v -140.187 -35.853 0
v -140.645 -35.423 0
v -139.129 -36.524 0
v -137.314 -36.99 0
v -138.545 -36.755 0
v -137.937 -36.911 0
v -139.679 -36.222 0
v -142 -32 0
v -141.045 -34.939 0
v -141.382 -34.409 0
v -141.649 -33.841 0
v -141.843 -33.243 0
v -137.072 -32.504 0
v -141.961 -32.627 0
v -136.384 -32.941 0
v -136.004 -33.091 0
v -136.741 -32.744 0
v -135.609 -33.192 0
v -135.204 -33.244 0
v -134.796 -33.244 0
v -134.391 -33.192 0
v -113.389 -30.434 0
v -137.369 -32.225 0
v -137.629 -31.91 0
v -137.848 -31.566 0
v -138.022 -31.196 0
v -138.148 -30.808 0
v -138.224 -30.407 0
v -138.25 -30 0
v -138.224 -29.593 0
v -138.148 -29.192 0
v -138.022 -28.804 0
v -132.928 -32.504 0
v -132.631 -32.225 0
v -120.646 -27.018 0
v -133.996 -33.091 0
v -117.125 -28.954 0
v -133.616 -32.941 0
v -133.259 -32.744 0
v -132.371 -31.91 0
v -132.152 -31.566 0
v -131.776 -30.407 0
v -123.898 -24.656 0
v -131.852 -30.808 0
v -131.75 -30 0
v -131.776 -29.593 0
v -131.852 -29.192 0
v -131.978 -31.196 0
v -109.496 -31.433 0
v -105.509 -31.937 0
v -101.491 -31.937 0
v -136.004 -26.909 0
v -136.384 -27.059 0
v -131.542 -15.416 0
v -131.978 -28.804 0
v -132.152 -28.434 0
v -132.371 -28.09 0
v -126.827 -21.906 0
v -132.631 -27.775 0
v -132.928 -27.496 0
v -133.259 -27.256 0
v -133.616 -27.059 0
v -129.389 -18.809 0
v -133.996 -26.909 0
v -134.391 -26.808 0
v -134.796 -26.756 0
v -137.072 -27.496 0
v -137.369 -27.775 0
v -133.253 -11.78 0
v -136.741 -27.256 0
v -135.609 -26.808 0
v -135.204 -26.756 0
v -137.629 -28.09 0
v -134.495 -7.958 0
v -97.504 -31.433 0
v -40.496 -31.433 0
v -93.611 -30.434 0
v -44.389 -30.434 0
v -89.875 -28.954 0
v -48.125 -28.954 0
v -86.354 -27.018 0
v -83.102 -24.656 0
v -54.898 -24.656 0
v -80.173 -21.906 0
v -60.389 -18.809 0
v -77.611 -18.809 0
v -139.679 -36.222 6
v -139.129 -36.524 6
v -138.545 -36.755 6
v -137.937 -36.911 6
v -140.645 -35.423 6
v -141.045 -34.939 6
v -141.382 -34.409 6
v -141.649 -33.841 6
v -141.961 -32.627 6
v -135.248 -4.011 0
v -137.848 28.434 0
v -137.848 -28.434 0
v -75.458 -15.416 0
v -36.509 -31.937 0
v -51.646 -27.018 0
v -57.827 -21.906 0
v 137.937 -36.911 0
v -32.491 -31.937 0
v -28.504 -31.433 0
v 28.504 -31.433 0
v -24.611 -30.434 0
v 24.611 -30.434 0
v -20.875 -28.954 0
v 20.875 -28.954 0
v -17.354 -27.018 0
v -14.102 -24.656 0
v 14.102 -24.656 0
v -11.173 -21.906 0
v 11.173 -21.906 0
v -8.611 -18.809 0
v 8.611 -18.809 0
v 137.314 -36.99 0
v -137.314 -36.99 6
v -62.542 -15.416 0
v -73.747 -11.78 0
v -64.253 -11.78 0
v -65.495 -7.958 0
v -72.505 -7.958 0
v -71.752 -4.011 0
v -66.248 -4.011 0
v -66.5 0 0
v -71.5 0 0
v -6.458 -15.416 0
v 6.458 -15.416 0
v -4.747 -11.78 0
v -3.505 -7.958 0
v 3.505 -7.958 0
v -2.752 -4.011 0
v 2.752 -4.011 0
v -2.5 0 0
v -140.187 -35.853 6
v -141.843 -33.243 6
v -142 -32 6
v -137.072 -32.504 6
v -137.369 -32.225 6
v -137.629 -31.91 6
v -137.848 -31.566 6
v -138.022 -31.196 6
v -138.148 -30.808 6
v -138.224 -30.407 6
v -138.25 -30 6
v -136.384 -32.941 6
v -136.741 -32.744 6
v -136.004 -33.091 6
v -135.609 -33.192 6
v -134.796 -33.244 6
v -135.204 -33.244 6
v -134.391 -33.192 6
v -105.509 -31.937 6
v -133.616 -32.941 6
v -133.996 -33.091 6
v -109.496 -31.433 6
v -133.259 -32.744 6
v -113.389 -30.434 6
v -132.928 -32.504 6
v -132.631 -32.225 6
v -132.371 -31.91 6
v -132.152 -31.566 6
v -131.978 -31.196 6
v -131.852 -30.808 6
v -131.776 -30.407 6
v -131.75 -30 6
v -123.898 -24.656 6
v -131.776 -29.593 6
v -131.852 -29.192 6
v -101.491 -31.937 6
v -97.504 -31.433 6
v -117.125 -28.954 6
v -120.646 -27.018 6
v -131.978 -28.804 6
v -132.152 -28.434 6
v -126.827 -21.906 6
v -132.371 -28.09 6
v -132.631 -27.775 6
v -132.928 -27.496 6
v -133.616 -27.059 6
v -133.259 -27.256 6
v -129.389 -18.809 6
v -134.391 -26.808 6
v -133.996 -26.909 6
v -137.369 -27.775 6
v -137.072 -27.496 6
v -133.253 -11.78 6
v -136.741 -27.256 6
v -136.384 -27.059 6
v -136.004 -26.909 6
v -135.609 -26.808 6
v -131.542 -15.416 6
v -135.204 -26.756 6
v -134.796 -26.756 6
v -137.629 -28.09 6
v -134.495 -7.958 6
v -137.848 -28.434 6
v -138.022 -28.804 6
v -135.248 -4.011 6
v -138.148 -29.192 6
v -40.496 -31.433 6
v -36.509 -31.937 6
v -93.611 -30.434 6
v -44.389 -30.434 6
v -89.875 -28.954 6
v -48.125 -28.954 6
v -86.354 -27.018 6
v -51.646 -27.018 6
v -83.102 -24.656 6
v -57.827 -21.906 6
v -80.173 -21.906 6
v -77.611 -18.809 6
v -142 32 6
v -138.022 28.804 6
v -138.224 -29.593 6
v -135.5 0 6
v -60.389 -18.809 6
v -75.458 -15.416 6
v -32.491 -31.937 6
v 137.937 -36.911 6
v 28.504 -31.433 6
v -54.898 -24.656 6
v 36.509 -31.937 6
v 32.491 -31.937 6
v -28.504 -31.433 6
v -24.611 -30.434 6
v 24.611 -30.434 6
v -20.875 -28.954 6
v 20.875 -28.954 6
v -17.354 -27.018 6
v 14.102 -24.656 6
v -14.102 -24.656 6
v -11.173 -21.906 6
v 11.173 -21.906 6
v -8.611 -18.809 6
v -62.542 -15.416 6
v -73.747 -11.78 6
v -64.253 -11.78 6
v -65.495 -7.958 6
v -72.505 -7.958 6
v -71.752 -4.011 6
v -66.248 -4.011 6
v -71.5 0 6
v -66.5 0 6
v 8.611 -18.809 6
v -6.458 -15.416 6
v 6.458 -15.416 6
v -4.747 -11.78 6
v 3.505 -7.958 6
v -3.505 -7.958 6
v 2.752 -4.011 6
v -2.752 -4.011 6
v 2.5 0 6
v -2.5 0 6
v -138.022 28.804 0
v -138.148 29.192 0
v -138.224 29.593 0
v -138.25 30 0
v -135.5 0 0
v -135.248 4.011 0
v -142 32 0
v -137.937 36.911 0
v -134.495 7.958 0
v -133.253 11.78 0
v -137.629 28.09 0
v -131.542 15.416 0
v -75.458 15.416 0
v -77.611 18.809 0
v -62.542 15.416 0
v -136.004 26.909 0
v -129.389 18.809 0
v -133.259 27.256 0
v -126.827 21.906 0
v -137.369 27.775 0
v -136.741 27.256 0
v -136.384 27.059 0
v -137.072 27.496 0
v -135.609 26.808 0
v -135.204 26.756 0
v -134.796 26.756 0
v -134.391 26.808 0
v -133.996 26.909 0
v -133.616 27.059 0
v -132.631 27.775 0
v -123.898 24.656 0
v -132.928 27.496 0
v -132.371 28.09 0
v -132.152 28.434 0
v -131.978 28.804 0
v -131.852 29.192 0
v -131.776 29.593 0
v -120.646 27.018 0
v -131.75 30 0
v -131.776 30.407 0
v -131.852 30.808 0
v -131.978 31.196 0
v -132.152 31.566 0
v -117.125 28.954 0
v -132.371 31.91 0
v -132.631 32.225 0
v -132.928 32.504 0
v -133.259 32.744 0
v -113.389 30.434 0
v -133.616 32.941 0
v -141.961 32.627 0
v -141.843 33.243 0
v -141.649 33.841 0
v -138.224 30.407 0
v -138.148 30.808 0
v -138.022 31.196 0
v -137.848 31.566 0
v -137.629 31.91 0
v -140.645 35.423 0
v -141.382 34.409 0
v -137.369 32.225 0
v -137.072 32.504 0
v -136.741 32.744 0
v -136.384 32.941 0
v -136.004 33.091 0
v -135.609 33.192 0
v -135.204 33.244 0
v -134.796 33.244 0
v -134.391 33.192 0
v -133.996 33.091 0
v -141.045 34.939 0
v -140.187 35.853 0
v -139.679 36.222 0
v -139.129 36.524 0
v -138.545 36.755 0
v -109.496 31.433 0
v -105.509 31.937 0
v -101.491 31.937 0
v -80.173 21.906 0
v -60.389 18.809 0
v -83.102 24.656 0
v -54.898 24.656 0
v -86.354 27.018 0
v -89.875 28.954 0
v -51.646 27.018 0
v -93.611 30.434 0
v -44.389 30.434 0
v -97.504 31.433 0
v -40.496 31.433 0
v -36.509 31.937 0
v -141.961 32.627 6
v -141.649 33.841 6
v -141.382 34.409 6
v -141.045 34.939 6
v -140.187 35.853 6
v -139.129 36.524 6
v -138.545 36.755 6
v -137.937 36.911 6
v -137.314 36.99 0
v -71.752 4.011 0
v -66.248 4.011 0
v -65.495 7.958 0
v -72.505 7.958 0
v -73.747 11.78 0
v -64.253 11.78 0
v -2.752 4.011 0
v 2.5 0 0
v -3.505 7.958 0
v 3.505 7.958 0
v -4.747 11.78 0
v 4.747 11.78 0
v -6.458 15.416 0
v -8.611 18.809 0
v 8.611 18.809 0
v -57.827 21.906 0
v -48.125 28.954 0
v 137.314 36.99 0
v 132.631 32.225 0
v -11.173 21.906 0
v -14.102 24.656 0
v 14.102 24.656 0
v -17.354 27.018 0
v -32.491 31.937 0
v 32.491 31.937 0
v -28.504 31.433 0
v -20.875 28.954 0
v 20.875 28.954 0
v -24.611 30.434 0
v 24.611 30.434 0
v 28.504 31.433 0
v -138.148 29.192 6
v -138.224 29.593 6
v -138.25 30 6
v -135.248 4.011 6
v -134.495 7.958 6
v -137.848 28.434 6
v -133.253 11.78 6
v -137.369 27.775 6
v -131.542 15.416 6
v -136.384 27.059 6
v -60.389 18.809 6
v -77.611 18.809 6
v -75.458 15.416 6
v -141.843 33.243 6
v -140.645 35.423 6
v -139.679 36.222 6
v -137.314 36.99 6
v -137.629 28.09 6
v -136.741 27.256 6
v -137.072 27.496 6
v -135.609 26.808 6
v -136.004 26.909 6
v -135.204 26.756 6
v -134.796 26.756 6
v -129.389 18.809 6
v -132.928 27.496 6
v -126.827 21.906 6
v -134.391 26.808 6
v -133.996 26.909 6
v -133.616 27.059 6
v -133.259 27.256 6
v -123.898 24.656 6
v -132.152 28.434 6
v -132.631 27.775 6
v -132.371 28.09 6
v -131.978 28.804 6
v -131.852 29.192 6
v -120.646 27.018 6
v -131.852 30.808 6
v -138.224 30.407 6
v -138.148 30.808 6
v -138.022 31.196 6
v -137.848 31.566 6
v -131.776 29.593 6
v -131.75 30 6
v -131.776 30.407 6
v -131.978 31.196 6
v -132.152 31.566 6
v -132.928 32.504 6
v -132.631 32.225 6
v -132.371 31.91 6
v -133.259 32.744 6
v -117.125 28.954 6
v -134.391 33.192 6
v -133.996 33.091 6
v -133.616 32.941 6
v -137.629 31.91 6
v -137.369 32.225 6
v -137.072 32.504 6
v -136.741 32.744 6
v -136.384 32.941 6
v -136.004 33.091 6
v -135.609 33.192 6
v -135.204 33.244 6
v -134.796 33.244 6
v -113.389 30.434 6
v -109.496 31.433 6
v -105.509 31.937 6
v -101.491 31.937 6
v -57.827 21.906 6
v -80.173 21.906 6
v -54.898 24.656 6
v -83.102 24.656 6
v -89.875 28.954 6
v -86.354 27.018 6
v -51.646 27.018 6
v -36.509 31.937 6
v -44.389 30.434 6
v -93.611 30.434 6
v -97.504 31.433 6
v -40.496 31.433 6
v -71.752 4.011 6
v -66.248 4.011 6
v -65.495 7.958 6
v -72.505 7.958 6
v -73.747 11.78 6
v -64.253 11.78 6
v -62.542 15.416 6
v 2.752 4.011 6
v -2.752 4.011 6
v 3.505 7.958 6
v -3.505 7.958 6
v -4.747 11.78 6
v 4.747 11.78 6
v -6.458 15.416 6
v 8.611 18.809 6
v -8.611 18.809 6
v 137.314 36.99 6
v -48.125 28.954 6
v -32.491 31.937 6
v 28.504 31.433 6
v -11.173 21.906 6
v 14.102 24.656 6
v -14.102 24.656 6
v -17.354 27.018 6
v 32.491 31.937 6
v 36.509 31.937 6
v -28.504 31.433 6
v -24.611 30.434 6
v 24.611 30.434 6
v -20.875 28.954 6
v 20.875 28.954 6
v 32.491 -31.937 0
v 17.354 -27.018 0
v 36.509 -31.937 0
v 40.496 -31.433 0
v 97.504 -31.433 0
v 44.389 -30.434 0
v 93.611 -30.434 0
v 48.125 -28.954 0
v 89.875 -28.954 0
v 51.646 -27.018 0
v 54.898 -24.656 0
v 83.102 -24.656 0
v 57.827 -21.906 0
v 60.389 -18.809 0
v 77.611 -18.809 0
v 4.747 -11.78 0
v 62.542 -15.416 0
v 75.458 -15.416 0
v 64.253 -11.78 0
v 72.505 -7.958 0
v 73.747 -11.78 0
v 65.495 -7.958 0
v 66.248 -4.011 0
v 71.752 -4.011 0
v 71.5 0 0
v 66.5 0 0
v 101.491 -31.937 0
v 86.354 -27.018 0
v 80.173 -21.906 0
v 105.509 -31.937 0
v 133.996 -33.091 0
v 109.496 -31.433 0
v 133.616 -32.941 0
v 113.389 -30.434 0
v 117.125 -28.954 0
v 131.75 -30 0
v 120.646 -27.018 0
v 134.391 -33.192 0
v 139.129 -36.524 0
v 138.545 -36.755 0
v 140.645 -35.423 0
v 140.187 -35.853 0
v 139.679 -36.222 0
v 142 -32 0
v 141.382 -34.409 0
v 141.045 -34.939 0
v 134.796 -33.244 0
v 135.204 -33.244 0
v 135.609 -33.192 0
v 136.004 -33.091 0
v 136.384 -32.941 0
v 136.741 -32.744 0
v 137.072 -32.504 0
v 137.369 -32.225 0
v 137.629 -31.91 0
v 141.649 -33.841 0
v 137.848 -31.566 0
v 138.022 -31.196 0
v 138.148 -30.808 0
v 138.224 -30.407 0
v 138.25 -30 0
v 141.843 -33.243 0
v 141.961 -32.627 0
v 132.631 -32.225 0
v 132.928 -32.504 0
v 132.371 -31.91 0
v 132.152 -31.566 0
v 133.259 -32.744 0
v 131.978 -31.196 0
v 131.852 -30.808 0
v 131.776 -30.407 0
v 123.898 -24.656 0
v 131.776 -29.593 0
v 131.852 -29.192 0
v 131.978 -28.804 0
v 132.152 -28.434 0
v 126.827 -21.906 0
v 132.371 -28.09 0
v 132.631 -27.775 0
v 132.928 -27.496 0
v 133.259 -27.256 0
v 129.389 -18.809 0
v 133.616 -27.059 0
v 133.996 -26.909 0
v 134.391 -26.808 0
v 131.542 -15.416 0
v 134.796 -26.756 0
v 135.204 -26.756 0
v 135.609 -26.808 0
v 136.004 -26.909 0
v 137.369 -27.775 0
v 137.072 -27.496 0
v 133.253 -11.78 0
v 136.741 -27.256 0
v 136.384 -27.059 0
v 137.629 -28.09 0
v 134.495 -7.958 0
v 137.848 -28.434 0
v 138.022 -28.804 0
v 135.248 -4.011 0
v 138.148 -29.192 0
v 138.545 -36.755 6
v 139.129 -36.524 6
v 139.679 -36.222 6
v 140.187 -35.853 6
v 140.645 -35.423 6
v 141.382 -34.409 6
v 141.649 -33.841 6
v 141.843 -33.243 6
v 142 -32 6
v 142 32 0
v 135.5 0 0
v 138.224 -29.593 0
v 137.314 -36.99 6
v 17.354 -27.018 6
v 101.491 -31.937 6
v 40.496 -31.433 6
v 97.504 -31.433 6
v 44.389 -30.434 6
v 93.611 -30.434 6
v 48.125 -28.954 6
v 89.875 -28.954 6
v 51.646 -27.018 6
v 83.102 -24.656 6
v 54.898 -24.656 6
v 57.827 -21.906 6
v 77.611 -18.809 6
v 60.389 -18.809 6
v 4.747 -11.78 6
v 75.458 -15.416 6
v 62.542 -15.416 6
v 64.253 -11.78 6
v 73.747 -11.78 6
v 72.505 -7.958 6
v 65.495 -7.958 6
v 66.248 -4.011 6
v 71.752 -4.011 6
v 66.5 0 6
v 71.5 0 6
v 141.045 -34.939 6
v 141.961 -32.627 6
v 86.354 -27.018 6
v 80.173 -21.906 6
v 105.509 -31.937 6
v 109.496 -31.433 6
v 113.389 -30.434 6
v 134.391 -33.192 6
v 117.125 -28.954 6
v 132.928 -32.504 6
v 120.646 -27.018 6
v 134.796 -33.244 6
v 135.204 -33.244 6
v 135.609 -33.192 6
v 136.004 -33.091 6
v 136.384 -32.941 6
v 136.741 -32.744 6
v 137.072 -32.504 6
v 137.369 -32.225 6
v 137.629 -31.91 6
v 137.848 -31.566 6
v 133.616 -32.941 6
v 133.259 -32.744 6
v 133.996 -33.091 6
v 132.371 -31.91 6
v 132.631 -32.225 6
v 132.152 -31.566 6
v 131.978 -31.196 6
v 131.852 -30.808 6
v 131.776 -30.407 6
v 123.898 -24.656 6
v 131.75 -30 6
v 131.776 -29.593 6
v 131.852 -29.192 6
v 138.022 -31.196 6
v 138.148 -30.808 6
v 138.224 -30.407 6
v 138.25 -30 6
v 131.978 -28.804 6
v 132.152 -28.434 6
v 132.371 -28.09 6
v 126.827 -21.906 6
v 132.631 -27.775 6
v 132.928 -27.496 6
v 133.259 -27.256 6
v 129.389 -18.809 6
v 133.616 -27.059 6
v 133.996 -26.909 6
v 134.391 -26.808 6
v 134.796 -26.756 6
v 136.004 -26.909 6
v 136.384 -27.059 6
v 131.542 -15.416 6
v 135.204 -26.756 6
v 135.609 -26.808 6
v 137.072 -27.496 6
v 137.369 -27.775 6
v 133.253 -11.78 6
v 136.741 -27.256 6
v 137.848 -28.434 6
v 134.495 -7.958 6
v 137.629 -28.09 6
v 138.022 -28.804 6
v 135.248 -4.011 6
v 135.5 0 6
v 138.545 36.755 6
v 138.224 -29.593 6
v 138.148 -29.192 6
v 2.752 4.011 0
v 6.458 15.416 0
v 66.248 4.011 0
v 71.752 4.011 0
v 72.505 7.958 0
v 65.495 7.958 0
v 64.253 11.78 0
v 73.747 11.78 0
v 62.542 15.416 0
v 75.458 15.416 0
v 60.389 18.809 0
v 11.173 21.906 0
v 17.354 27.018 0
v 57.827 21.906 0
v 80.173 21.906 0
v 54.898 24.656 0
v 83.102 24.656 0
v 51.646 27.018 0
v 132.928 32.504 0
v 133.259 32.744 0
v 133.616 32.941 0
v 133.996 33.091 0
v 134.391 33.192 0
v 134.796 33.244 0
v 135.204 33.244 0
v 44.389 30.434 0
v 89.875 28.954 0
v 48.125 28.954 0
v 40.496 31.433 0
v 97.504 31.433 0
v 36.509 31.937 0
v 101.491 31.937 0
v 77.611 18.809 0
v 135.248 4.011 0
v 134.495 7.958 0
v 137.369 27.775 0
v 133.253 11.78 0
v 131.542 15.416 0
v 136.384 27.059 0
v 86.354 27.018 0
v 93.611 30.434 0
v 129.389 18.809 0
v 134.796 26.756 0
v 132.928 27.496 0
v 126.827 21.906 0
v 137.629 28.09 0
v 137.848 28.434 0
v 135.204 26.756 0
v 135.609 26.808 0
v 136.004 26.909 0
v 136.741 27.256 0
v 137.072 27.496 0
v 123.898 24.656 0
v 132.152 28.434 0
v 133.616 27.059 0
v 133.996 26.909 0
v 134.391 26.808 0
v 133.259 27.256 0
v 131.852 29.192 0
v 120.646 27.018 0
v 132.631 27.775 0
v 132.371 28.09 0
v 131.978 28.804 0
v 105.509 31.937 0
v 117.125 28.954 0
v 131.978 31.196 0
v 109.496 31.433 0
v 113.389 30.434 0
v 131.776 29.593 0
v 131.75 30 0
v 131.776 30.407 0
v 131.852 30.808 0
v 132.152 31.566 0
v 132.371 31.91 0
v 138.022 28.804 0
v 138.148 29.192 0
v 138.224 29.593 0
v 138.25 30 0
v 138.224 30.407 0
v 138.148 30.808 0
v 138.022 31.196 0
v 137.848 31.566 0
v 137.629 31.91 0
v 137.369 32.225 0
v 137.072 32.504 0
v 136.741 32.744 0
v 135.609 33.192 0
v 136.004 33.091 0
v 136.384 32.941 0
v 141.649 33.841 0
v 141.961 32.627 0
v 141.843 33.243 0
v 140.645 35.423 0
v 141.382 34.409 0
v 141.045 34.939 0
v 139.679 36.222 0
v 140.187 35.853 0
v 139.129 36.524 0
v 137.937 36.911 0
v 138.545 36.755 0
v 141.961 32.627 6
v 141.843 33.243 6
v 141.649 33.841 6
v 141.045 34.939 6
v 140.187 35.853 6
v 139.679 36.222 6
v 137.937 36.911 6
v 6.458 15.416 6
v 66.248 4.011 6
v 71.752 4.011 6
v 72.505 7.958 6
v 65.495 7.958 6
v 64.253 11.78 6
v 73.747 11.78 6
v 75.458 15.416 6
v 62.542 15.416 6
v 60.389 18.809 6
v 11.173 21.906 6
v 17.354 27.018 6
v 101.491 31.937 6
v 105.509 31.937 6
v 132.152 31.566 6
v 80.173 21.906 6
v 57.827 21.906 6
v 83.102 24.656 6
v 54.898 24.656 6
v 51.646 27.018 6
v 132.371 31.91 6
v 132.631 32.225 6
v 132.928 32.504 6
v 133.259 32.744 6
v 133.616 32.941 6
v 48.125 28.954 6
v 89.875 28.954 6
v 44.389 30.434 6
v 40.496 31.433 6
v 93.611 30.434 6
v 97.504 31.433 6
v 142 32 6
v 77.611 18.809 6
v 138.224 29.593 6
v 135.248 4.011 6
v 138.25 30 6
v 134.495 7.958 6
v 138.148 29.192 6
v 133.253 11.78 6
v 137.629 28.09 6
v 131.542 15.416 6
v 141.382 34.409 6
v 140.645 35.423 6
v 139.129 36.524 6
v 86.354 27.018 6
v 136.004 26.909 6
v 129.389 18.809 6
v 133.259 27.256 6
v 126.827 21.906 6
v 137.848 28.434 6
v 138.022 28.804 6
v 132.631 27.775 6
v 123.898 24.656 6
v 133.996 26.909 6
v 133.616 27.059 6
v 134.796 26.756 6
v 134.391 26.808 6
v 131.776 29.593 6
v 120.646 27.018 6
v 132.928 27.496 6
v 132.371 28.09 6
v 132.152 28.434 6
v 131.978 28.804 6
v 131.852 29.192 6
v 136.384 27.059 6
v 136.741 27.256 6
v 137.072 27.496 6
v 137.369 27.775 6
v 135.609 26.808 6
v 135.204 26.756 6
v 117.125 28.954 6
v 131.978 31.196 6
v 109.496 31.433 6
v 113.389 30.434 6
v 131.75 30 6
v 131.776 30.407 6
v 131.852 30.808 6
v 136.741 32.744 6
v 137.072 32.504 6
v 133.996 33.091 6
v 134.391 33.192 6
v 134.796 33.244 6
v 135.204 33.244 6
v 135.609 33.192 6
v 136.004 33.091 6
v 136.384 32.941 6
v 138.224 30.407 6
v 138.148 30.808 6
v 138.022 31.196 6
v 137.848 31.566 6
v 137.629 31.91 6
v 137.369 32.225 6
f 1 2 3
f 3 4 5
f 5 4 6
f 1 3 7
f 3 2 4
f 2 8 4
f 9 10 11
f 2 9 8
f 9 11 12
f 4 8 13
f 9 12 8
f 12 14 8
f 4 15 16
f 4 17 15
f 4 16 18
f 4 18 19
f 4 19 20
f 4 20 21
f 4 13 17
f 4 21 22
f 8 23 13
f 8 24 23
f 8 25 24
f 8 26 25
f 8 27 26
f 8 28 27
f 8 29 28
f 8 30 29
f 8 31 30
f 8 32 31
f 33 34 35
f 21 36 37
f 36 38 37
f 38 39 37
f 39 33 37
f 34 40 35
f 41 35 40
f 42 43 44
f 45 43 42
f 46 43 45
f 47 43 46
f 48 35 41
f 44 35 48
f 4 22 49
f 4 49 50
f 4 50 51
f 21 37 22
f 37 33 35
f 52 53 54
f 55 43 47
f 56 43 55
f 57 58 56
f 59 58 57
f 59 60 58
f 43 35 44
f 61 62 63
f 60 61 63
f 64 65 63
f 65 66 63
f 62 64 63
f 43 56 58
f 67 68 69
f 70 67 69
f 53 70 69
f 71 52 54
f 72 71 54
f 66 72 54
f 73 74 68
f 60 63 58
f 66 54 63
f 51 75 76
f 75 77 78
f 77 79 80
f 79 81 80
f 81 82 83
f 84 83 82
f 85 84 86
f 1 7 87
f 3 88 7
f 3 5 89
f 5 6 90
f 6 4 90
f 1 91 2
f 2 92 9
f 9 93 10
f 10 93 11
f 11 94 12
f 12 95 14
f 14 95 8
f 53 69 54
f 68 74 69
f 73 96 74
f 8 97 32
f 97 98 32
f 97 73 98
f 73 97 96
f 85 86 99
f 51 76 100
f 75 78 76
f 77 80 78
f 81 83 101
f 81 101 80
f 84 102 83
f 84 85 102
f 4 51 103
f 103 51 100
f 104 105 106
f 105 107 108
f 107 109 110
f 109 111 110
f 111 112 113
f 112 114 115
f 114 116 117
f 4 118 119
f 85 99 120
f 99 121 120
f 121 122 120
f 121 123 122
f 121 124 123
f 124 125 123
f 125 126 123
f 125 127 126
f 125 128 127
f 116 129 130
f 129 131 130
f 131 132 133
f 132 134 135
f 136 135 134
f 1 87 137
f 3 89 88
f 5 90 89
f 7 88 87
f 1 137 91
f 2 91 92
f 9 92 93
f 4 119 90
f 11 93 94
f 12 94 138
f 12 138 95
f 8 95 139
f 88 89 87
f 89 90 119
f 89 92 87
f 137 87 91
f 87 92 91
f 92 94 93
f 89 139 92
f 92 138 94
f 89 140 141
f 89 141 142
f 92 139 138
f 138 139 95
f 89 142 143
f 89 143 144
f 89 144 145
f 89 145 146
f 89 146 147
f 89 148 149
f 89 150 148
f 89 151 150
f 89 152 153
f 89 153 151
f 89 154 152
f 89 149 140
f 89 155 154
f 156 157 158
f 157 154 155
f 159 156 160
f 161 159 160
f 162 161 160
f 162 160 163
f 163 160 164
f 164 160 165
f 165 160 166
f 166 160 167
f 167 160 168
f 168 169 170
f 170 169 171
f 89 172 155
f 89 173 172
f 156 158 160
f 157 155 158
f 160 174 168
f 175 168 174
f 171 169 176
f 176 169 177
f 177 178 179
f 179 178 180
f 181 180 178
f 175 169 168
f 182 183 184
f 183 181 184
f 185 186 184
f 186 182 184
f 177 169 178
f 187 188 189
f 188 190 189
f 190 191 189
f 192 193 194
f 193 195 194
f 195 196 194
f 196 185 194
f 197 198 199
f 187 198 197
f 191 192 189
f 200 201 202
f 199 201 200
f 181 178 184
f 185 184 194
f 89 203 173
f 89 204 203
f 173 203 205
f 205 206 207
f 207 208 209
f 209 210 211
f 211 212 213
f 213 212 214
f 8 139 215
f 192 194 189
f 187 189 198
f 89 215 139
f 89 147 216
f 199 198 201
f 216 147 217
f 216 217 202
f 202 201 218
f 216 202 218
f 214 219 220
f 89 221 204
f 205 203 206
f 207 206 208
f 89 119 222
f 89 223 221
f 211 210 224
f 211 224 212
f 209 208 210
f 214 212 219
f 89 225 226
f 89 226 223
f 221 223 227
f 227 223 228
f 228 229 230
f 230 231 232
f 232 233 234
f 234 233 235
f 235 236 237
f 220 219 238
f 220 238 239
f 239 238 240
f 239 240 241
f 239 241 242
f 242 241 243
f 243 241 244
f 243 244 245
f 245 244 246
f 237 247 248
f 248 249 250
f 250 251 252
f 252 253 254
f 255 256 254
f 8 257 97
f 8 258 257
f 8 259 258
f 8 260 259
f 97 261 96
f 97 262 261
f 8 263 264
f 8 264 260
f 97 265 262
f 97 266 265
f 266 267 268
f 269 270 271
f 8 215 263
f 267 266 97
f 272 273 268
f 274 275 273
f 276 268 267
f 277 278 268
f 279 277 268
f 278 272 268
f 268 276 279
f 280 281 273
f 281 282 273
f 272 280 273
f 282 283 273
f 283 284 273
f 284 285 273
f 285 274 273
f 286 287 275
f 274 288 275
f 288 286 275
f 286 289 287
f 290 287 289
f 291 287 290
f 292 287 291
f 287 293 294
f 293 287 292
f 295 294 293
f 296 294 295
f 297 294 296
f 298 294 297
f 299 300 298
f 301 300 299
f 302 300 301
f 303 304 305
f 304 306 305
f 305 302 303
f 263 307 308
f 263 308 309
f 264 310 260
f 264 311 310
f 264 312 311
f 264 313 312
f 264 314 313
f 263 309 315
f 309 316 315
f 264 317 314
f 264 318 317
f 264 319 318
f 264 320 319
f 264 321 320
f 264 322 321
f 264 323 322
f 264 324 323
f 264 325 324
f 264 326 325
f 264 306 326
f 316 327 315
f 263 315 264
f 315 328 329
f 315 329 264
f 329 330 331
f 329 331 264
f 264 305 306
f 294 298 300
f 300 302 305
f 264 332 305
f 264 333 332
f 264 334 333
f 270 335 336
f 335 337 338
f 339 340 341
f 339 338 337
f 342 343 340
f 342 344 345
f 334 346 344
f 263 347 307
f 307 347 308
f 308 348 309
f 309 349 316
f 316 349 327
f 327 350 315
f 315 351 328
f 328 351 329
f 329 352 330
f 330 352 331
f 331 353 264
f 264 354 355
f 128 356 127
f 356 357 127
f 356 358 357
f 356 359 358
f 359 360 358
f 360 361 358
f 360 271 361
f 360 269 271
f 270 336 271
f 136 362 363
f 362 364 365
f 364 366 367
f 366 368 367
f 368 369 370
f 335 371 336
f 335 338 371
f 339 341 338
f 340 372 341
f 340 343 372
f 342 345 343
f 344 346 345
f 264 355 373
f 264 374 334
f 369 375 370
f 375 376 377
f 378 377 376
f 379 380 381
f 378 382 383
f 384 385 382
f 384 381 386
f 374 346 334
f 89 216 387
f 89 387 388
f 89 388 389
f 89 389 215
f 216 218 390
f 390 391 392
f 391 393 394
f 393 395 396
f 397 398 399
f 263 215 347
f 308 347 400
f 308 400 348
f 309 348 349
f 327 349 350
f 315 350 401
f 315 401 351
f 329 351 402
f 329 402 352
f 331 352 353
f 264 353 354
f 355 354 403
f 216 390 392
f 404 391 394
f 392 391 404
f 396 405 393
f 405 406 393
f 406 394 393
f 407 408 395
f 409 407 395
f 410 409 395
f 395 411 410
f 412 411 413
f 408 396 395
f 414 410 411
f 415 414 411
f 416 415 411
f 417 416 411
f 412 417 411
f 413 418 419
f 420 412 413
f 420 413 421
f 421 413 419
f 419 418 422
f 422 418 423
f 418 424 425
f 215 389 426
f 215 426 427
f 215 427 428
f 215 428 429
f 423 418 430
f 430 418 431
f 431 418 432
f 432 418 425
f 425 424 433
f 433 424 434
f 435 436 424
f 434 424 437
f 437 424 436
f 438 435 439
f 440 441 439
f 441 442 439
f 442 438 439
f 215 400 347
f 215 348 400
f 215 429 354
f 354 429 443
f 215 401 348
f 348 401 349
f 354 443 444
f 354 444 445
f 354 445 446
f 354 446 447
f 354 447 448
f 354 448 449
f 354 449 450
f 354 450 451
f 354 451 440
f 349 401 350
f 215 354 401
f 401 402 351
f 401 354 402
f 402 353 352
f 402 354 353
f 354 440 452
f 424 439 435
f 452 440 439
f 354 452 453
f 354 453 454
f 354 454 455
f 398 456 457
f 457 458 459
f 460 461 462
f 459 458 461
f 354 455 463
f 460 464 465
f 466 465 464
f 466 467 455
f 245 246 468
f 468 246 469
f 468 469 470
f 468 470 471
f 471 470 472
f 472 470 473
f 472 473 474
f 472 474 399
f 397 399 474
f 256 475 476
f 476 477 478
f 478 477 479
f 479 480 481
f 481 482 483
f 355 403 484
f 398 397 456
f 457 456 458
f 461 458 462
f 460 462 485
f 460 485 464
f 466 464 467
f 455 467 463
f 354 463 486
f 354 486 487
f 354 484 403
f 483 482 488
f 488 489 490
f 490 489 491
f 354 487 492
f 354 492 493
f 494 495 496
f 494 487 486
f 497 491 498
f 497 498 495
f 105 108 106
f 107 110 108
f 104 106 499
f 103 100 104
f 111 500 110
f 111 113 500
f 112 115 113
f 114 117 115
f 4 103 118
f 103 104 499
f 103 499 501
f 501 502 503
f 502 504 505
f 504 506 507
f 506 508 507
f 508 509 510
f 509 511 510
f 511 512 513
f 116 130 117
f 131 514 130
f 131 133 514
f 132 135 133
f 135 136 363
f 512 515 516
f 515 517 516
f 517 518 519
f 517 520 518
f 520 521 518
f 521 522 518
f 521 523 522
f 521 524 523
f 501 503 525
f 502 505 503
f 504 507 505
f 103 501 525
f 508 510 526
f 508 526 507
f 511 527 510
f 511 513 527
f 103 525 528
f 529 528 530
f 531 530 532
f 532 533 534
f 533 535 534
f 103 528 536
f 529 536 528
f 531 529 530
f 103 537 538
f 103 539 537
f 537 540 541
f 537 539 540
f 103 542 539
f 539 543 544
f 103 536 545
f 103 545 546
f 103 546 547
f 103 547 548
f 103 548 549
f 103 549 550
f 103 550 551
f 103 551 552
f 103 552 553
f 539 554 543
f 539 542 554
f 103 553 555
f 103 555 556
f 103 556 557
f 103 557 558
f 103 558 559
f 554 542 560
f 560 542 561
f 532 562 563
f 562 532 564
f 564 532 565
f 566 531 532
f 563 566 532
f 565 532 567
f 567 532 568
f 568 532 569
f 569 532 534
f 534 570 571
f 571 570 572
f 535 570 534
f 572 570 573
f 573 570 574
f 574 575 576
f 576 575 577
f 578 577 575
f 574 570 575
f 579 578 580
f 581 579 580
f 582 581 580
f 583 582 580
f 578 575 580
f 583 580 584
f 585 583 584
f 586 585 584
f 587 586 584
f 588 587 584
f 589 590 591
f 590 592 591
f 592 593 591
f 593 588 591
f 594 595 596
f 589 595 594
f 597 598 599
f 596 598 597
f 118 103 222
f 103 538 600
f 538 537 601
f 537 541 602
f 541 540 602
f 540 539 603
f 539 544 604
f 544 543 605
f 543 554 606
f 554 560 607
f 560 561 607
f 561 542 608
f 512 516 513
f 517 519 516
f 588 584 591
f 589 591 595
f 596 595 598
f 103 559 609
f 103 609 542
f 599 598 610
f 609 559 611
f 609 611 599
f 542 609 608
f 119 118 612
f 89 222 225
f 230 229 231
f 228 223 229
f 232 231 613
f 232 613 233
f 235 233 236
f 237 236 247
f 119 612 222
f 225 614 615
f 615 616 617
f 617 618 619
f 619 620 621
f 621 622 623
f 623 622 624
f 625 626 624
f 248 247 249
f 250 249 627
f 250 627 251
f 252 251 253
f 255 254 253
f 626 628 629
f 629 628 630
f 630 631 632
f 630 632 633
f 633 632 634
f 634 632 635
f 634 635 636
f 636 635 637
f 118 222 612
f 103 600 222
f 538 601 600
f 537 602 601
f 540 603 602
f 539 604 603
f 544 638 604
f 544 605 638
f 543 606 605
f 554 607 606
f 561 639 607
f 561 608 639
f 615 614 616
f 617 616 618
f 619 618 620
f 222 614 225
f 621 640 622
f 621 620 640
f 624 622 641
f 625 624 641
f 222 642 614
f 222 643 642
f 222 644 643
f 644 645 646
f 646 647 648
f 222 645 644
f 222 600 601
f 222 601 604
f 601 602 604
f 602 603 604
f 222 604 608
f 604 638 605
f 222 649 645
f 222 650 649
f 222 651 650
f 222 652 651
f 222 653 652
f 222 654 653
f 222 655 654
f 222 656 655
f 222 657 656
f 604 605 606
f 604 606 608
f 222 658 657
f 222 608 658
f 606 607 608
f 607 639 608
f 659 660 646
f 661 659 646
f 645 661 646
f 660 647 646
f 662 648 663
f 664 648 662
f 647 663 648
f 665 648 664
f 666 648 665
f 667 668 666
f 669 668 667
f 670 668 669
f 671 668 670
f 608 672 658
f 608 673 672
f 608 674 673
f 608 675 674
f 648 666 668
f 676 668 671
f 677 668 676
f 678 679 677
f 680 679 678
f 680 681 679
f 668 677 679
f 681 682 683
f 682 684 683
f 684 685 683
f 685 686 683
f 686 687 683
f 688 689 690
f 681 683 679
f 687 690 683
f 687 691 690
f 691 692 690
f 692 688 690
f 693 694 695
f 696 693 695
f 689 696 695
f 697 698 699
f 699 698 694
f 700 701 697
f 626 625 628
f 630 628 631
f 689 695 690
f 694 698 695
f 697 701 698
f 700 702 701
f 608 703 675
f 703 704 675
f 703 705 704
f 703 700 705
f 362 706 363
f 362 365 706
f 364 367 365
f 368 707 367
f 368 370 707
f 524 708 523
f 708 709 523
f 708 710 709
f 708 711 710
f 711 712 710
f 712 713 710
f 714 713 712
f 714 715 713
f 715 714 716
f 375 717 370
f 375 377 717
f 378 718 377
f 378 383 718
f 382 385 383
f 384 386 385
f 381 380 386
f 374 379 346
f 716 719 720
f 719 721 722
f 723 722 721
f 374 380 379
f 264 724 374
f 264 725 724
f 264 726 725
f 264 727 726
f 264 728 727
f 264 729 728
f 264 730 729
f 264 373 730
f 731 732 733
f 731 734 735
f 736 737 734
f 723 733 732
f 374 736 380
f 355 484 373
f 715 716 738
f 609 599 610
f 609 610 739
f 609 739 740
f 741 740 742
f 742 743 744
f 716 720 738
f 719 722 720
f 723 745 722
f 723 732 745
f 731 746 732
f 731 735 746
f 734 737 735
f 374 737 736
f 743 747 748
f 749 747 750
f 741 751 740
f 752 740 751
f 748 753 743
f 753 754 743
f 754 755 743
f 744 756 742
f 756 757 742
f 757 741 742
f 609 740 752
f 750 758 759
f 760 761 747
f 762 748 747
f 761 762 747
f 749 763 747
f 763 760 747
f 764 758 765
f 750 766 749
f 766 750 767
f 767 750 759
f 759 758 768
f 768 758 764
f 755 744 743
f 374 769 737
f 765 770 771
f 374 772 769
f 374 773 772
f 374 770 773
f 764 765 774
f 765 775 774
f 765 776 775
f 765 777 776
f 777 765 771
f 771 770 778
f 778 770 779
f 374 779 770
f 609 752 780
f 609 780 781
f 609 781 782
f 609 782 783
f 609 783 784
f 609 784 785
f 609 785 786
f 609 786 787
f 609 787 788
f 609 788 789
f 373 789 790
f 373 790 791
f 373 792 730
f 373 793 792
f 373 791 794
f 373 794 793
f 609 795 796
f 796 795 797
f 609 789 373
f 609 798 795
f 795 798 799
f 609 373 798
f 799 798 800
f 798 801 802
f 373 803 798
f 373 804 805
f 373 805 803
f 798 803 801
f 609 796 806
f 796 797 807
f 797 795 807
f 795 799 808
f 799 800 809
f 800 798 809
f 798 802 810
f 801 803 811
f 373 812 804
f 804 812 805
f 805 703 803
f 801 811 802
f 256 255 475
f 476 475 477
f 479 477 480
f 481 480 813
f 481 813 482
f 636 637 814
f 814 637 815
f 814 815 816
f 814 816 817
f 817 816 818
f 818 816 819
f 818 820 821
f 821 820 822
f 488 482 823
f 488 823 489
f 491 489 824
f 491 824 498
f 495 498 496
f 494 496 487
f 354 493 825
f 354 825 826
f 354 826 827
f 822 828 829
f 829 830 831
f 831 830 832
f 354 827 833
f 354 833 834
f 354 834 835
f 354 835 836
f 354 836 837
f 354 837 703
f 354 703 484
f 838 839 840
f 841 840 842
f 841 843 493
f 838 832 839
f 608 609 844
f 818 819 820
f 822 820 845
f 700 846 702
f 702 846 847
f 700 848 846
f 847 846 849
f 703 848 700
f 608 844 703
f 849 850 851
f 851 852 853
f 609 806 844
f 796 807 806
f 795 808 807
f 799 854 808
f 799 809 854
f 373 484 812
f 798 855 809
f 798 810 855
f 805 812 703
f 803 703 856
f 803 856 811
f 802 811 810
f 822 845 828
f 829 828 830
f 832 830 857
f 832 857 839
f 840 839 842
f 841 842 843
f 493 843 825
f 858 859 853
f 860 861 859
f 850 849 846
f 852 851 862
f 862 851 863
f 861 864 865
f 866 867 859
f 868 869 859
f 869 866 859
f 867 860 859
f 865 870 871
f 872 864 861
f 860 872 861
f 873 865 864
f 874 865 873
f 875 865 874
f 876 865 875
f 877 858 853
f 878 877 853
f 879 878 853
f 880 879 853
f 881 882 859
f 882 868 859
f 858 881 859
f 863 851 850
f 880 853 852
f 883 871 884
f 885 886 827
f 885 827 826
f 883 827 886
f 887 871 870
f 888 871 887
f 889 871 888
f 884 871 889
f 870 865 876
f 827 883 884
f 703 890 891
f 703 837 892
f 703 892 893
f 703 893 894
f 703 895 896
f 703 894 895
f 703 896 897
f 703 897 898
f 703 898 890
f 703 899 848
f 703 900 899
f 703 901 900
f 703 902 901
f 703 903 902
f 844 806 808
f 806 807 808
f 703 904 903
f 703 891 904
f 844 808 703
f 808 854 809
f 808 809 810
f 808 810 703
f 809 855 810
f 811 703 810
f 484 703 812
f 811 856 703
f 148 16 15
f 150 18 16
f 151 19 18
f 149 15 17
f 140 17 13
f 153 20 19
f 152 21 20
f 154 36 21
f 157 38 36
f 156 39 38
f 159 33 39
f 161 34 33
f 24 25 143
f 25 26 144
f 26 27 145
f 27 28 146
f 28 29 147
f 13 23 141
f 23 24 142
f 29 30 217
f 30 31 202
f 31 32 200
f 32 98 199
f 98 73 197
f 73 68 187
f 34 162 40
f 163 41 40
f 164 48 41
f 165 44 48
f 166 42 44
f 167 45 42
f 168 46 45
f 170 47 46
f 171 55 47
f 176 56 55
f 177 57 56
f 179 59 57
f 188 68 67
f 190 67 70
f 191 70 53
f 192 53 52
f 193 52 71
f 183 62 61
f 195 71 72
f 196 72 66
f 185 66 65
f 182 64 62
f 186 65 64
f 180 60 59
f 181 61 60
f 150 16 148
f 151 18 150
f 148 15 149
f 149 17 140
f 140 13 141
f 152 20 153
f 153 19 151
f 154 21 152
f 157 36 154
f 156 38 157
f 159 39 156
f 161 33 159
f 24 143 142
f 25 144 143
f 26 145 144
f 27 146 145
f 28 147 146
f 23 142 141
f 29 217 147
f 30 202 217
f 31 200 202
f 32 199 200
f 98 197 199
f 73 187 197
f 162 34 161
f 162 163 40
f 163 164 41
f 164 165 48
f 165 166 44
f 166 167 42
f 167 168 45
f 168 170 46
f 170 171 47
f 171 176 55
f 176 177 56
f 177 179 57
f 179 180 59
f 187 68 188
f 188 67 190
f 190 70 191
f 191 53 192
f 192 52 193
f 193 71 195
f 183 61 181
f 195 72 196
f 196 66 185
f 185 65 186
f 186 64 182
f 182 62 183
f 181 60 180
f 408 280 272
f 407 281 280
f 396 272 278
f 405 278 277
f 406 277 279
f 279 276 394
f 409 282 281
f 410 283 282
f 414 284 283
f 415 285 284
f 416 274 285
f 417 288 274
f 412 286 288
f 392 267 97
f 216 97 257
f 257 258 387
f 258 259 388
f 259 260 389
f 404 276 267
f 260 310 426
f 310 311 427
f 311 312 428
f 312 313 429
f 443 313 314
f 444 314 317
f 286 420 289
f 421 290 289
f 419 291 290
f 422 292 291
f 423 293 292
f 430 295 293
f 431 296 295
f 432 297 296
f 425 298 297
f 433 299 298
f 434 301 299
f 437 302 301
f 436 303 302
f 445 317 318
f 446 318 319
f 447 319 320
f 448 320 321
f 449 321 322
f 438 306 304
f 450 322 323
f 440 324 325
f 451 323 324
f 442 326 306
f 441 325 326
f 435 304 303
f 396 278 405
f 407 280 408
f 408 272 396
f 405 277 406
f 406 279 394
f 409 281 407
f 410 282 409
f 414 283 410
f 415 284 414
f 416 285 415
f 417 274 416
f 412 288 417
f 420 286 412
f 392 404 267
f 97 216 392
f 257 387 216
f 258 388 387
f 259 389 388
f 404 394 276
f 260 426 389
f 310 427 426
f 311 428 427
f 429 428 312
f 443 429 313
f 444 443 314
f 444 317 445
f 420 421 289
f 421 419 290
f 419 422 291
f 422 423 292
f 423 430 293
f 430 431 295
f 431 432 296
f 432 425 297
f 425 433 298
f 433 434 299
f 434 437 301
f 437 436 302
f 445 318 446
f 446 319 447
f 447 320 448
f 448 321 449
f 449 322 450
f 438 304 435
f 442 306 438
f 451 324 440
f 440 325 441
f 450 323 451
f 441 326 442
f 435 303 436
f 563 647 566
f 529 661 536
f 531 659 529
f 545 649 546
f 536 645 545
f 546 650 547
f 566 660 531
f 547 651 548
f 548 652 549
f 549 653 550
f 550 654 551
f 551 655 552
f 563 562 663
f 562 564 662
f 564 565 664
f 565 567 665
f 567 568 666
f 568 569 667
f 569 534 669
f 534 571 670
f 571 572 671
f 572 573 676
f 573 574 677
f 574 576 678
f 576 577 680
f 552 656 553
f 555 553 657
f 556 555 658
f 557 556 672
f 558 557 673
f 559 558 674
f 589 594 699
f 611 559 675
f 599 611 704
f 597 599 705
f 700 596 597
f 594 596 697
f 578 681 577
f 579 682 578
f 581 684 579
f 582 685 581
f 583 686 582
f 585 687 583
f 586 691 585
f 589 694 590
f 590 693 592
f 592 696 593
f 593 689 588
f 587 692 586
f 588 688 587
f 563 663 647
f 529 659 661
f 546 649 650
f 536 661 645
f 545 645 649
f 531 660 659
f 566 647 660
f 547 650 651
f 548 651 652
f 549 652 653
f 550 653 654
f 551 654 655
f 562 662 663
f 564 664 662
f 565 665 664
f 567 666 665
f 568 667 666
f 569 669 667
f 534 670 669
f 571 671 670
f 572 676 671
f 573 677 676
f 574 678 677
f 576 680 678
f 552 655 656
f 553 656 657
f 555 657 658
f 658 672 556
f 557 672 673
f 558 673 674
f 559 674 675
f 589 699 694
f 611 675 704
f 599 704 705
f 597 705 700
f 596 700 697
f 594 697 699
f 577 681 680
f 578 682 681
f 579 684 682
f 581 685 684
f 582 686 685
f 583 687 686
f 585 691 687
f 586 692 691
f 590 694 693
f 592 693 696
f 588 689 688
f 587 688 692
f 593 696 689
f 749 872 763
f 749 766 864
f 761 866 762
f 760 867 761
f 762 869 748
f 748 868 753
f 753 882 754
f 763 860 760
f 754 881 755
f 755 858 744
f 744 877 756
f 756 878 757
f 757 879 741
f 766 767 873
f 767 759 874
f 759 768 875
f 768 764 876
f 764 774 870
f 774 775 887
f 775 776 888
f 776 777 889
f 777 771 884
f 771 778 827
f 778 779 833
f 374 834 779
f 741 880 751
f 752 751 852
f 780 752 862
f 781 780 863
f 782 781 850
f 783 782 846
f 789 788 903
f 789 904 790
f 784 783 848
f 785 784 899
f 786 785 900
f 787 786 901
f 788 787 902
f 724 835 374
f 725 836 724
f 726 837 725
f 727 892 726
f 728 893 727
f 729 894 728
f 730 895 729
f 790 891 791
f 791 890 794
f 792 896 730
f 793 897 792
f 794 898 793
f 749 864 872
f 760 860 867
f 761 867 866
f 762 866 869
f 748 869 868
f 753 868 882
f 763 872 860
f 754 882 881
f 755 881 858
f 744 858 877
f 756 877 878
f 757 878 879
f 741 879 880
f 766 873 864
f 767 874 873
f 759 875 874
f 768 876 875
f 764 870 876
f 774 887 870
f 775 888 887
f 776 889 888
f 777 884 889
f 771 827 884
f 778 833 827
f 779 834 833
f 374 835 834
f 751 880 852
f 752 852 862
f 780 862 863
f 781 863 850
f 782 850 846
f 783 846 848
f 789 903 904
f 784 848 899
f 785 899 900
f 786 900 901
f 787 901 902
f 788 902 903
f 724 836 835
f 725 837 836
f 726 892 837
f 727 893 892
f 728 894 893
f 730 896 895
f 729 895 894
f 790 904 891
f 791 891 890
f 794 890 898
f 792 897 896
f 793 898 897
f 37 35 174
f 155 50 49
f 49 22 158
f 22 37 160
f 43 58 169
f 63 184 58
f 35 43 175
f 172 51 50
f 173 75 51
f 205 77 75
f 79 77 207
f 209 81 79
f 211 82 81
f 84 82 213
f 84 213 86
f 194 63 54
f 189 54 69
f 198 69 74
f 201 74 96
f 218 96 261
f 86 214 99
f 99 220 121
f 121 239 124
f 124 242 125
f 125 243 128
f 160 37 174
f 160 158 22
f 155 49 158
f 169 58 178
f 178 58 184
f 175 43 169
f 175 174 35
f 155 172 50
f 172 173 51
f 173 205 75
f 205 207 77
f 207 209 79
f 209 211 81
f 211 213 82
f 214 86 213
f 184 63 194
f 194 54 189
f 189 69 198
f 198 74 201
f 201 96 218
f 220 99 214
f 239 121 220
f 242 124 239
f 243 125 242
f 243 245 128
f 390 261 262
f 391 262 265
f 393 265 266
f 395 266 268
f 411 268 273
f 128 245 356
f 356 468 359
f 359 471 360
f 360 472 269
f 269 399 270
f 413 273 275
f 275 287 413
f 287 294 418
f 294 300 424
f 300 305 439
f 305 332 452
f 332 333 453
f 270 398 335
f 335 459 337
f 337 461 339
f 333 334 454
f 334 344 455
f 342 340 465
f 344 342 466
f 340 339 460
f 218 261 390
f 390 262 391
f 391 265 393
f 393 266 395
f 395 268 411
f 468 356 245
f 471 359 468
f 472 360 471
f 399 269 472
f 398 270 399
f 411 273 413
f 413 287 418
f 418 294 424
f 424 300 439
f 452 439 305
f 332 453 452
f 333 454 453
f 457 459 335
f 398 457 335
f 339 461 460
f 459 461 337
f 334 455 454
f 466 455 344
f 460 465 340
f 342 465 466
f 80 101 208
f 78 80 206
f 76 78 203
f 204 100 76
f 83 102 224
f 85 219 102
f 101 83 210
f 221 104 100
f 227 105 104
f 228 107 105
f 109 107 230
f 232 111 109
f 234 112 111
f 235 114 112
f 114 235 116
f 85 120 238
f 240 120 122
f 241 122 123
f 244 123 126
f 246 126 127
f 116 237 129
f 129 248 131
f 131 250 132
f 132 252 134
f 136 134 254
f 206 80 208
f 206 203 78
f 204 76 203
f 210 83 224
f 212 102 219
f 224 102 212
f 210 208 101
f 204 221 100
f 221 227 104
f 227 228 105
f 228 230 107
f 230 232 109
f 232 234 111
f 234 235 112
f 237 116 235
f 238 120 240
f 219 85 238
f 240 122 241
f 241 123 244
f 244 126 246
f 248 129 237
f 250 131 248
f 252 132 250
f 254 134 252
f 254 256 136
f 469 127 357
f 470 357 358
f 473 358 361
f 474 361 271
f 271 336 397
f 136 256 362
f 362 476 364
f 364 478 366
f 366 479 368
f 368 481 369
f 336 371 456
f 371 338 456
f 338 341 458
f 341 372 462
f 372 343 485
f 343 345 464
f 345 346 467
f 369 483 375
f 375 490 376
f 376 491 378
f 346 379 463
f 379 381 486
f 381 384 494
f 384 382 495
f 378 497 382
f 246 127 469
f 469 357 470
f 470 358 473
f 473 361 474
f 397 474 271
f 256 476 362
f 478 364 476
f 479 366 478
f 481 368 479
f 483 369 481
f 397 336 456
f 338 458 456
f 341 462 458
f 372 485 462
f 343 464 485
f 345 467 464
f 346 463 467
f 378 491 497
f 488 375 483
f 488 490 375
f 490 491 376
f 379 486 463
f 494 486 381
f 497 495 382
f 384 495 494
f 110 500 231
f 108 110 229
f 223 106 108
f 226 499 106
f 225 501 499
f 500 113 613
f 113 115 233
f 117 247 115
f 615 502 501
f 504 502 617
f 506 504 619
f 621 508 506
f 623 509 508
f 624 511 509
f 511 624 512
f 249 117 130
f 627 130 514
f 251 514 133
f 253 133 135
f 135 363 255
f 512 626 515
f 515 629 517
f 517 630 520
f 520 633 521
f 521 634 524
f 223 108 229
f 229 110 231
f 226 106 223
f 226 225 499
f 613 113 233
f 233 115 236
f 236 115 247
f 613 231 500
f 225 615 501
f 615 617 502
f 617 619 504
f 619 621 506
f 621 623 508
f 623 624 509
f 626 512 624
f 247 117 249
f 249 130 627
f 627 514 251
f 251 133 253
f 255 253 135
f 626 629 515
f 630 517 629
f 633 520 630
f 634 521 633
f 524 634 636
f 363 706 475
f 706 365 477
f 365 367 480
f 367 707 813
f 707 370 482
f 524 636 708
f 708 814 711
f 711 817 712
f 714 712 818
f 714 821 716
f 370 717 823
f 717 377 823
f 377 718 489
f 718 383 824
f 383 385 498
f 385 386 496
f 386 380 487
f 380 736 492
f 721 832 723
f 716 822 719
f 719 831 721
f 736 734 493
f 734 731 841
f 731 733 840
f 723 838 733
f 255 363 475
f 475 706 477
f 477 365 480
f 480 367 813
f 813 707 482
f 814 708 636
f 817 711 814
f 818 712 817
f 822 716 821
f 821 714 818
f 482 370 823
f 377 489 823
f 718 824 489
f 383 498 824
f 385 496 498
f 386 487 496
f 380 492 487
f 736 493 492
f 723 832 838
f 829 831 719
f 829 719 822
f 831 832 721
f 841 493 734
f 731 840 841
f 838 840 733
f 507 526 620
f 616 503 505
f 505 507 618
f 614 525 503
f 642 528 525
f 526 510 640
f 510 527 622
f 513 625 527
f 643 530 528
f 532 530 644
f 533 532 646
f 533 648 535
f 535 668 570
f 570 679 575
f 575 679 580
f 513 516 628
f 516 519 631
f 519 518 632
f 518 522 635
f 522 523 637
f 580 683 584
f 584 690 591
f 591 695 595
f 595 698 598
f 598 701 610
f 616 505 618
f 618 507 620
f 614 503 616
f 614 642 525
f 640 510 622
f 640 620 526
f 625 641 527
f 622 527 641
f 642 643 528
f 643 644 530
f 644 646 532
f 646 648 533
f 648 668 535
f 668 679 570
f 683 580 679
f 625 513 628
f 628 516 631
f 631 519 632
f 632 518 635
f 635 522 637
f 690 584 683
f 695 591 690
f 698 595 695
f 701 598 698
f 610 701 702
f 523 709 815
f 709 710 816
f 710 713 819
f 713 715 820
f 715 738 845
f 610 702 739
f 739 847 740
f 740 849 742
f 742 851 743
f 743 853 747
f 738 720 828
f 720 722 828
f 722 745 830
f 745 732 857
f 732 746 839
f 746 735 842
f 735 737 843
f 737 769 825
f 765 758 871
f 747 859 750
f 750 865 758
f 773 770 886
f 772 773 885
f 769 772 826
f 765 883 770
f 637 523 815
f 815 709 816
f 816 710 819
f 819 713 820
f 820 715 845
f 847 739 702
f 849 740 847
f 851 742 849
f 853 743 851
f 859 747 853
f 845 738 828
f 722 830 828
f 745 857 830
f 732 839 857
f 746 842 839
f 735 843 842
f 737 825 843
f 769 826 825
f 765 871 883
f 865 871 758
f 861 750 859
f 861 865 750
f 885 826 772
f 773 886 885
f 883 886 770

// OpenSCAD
$fn = 50;

difference() {
	union() {
		hull() {
			translate(v = [-137.0, 32.0, 0]) {
				cylinder(h = 6, r = 5);
			}
			translate(v = [137.0, 32.0, 0]) {
				cylinder(h = 6, r = 5);
			}
			translate(v = [-137.0, -32.0, 0]) {
				cylinder(h = 6, r = 5);
			}
			translate(v = [137.0, -32.0, 0]) {
				cylinder(h = 6, r = 5);
			}
		}
	}
	union() {
		translate(v = [-135.0, -30.0, -100.0]) {
			cylinder(h = 200, r = 3.25);
		}
		translate(v = [-135.0, 30.0, -100.0]) {
			cylinder(h = 200, r = 3.25);
		}
		translate(v = [135.0, -30.0, -100.0]) {
			cylinder(h = 200, r = 3.25);
		}
		translate(v = [135.0, 30.0, -100.0]) {
			cylinder(h = 200, r = 3.25);
		}
		translate(v = [-135.0, -30.0, -100.0]) {
			cylinder(h = 200, r = 1.8);
		}
		translate(v = [-135.0, 30.0, -100.0]) {
			cylinder(h = 200, r = 1.8);
		}
		translate(v = [135.0, -30.0, -100.0]) {
			cylinder(h = 200, r = 1.8);
		}
		translate(v = [135.0, 30.0, -100.0]) {
			cylinder(h = 200, r = 1.8);
		}
		translate(v = [-103.5, 0, 0.0]) {
			cylinder(h = 6, r = 32.0);
		}
		translate(v = [-34.5, 0, 0.0]) {
			cylinder(h = 6, r = 32.0);
		}
		translate(v = [34.5, 0, 0.0]) {
			cylinder(h = 6, r = 32.0);
		}
		translate(v = [103.5, 0, 0.0]) {
			cylinder(h = 6, r = 32.0);
		}
	}
}
